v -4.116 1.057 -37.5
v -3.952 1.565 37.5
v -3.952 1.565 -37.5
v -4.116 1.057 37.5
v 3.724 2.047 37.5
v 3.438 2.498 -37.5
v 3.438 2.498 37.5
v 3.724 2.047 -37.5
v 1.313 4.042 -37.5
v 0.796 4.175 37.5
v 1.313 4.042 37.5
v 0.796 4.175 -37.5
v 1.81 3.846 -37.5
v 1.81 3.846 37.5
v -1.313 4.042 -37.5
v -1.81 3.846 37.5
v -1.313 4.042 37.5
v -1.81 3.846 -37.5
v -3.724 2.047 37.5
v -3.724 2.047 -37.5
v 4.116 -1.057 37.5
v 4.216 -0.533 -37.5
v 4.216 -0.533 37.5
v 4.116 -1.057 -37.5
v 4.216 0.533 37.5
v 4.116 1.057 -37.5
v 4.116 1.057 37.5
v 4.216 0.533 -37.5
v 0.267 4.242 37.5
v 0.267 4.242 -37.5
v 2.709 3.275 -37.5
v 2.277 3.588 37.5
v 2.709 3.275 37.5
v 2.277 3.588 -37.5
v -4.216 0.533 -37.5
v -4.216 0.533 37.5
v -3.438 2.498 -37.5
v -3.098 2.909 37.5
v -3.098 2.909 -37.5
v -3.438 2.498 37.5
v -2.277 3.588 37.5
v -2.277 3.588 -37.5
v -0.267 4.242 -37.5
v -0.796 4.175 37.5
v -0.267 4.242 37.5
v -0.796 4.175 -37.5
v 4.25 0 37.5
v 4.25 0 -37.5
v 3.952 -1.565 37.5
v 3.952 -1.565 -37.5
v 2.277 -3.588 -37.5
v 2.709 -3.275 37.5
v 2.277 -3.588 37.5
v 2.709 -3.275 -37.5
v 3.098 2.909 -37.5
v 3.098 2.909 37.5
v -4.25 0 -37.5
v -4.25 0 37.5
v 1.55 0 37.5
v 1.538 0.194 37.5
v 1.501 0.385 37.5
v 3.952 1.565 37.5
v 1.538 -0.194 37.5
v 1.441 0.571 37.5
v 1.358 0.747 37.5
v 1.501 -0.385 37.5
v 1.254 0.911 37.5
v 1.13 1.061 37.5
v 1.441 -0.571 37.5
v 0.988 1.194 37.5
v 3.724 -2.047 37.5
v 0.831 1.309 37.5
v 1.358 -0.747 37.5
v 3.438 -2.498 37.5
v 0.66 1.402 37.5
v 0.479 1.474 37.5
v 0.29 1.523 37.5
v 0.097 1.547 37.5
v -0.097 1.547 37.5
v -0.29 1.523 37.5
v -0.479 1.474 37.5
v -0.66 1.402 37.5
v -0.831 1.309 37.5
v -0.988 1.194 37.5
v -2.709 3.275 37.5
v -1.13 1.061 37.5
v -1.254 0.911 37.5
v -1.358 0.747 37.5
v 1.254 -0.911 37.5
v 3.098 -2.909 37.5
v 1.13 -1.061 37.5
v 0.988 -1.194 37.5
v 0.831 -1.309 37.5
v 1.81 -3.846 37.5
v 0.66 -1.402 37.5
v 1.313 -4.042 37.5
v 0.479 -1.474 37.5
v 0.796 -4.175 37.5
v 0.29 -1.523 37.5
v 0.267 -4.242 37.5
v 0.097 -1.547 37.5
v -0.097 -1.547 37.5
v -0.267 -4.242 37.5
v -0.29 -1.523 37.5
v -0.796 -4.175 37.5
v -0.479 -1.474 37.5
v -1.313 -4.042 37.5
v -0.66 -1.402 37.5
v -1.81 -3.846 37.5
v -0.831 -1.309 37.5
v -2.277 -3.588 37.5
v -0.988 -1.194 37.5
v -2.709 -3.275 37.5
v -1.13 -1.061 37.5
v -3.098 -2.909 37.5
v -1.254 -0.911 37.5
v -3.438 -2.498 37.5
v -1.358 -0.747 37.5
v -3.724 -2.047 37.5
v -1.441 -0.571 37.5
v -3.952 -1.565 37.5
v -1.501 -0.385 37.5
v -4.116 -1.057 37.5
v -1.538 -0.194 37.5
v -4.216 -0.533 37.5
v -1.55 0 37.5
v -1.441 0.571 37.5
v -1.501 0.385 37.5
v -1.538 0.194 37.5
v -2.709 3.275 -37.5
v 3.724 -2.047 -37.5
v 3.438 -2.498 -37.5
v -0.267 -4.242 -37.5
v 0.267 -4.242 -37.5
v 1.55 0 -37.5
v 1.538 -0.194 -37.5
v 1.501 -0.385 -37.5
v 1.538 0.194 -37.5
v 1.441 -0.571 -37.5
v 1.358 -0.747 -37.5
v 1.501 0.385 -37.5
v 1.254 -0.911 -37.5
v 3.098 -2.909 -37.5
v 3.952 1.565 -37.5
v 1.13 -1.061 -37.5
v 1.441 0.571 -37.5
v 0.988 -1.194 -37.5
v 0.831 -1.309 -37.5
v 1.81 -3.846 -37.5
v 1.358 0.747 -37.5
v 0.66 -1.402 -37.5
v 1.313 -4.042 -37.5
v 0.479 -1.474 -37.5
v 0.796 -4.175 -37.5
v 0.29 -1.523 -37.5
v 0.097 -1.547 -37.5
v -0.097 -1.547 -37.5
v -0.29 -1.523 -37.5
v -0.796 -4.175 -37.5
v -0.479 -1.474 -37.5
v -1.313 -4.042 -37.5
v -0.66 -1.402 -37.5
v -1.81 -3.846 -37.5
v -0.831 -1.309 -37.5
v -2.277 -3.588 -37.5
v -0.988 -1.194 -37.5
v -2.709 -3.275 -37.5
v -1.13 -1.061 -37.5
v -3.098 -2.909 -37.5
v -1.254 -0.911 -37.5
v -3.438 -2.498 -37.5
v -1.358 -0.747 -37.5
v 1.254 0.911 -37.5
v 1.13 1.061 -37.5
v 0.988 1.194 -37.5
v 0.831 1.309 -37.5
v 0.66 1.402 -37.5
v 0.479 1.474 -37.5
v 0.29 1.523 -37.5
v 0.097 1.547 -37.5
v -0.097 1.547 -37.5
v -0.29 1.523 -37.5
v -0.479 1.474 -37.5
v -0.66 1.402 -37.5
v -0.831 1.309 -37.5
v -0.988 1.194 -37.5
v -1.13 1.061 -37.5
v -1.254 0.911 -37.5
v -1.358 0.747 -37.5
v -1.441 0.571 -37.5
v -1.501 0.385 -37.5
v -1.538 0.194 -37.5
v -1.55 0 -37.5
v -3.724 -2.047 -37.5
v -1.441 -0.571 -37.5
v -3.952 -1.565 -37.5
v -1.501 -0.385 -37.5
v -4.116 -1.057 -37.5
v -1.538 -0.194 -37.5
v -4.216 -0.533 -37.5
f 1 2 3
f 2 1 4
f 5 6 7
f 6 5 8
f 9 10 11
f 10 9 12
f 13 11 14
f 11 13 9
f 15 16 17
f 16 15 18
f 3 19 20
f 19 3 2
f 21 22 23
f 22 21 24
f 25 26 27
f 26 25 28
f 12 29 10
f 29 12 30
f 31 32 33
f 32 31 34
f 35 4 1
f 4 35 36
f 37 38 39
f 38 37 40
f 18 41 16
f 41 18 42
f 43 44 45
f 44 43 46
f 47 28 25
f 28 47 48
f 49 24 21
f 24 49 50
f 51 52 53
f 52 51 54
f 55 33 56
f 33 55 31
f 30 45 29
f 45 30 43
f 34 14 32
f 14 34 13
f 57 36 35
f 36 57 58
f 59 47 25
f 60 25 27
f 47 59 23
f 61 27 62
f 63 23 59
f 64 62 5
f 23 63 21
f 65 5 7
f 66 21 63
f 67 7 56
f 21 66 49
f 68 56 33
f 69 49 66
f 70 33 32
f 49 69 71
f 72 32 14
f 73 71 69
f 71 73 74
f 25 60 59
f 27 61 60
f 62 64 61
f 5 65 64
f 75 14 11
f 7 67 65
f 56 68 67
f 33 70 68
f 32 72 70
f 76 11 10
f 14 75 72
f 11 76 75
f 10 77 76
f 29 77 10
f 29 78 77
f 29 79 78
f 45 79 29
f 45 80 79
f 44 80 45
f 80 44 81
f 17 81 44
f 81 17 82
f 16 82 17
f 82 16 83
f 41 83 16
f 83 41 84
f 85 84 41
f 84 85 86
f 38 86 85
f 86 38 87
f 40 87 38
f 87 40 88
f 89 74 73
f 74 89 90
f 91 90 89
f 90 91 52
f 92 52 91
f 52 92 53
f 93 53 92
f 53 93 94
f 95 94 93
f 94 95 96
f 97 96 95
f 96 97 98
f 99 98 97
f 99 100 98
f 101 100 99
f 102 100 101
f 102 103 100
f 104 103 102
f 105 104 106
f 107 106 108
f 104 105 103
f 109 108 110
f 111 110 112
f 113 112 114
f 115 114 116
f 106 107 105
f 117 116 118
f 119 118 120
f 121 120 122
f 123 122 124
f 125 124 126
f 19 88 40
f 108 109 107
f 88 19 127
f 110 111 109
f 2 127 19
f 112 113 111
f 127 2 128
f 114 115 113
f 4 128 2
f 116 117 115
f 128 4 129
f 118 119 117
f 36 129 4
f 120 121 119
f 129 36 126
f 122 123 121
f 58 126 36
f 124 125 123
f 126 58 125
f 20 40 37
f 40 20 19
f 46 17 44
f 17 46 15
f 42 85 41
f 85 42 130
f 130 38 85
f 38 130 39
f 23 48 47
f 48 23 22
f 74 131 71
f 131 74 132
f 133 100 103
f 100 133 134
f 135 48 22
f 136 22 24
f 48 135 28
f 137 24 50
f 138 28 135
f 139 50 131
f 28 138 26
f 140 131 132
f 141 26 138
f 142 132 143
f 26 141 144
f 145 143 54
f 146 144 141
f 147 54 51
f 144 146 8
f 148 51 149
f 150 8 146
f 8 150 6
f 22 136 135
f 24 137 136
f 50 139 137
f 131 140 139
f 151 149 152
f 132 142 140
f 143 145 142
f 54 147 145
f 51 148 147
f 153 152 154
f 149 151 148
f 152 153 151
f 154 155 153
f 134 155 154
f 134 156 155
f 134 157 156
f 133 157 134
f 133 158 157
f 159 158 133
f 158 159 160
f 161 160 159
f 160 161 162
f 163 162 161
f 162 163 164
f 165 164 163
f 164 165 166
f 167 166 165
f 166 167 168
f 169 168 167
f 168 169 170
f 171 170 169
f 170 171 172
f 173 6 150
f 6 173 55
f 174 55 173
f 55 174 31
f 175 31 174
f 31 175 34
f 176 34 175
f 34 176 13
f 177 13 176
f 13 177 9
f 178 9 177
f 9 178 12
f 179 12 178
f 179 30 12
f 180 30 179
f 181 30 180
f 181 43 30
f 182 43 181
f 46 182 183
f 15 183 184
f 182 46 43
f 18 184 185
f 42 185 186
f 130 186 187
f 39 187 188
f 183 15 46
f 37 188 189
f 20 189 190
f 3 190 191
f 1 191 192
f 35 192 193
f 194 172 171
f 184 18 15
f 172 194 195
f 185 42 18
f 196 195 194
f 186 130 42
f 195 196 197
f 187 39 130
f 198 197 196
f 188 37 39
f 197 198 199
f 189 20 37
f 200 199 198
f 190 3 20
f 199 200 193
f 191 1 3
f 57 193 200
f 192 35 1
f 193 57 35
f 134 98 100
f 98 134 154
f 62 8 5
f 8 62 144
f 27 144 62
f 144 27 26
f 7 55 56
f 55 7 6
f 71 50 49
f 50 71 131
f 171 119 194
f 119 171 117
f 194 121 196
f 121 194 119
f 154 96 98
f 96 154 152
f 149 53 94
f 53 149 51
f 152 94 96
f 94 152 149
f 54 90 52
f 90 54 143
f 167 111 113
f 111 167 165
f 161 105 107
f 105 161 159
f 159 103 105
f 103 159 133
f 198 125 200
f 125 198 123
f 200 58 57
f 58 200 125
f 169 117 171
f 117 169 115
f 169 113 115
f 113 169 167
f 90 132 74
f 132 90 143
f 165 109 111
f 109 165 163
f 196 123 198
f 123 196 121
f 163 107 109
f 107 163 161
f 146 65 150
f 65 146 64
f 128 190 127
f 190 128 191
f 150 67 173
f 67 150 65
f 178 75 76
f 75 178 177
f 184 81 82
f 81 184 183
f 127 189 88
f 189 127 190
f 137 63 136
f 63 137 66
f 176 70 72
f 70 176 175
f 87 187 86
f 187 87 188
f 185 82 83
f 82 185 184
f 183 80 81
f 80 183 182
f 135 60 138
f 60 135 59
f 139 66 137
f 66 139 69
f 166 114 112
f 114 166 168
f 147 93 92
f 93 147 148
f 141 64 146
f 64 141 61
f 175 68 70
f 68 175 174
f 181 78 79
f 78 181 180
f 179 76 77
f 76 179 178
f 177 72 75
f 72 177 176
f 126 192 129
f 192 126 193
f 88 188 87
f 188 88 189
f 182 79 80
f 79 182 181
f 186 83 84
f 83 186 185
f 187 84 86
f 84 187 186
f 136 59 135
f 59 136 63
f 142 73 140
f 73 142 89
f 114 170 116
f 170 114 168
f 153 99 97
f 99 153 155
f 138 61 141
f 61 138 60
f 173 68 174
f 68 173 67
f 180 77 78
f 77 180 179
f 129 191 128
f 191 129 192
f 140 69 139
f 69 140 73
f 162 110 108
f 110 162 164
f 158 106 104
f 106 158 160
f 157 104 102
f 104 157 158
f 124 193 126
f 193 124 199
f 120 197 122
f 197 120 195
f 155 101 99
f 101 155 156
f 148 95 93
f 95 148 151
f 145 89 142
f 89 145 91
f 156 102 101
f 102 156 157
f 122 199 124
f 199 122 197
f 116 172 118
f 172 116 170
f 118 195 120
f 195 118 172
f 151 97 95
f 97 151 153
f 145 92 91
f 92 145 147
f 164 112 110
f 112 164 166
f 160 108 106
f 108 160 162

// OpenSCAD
$fn = 50;


difference() {
	union() {
		translate(v = [0, 0, -37.5000000000]) {
			cylinder(h = 75, r = 4.2500000000);
		}
	}
	union() {
		translate(v = [0, 0, -100.0000000000]) {
			cylinder(h = 200, r = 1.5500000000);
		}
	}
}
